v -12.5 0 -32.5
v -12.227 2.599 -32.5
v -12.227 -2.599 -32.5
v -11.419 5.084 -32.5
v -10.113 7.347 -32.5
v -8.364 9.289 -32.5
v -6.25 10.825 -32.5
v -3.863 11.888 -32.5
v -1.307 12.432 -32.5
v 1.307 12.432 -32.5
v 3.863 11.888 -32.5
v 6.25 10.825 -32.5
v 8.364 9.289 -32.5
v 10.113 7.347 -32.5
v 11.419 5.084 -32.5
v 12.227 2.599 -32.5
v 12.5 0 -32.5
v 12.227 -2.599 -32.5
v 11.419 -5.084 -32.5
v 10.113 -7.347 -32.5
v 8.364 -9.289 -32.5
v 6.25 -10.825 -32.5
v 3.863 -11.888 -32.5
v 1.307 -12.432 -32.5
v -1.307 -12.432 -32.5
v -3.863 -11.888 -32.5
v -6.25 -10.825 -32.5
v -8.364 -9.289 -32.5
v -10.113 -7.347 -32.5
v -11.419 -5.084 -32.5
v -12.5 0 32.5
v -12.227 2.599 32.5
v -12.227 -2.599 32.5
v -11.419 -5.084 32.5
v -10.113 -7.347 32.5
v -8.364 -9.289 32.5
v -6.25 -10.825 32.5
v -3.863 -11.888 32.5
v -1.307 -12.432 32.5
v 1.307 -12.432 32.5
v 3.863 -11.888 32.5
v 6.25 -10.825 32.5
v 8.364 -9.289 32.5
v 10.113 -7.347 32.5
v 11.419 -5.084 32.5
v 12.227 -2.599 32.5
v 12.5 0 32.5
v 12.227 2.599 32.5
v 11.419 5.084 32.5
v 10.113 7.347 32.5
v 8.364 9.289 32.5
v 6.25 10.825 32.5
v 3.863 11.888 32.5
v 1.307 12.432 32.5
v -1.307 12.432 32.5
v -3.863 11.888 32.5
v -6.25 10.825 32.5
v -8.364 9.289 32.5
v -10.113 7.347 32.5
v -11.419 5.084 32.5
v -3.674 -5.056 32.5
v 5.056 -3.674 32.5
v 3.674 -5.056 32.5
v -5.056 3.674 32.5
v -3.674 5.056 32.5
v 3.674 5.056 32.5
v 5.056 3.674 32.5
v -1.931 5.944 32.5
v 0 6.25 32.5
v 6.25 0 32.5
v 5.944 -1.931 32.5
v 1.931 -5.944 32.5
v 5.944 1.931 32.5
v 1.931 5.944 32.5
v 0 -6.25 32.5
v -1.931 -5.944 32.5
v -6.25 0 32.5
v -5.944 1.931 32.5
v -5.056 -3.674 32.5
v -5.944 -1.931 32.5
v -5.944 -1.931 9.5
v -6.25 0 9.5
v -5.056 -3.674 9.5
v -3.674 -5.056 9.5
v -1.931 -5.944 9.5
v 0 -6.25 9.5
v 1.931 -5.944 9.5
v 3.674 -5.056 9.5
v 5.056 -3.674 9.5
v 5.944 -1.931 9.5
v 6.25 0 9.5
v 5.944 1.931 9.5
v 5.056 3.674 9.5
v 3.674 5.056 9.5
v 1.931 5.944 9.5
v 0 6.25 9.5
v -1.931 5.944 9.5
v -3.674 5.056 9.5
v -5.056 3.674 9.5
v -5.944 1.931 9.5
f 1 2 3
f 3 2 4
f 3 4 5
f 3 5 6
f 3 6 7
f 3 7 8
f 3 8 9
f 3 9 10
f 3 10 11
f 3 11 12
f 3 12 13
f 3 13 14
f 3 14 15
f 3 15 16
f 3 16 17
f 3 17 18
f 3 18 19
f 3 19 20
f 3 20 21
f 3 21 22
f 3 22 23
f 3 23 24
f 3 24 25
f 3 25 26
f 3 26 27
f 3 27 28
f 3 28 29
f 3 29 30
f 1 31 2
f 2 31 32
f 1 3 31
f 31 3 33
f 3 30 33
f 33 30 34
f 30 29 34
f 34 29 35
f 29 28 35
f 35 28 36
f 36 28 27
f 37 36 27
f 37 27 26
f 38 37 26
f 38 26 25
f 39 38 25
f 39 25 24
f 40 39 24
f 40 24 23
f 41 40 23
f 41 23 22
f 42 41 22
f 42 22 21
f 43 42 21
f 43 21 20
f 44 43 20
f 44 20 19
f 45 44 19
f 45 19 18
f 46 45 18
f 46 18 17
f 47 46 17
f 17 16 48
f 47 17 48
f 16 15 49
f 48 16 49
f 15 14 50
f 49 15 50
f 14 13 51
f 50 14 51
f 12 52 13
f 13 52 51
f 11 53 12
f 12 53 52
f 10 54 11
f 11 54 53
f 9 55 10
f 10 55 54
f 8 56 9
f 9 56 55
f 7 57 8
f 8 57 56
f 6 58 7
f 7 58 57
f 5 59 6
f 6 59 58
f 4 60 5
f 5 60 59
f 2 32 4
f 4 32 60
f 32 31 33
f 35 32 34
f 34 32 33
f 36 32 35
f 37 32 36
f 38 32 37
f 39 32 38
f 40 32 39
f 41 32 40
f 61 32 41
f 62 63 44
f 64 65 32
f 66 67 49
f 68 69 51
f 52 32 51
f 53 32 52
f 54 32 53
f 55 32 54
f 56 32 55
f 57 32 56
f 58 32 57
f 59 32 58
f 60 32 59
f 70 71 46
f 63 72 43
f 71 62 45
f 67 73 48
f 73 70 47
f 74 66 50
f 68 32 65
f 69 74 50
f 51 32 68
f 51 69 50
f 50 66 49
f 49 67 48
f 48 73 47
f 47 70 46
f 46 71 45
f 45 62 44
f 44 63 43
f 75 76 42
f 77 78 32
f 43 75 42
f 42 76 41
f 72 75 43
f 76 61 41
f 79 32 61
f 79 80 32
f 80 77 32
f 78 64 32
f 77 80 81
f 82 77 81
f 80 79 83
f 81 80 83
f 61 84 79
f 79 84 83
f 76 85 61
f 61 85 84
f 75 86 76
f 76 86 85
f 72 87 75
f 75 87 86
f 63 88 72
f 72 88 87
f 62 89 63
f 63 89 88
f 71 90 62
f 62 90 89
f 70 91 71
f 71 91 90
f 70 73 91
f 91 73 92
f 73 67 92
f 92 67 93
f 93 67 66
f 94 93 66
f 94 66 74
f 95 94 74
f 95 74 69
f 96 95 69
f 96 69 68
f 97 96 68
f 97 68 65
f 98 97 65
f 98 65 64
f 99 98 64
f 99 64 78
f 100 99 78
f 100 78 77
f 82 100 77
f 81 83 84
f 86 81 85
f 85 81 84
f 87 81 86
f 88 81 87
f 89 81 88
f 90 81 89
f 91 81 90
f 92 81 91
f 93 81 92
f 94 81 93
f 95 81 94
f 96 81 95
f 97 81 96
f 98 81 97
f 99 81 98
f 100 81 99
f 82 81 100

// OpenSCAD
/*
 * Holder for a small push button like this one https://www.sparkfun.com/products/11992
 */

module TriggerSwitchHolder(height = 65, radius = 12.5, innerHeight = 23, innerRadius = 12.5/2)
{
    difference()
    {
        cylinder(h = height, r = radius, center = true);

        translate([0, 0, (height - innerHeight) / 2 ])
        cylinder(h = innerHeight, r = innerRadius, center = true);
    }
}

TriggerSwitchHolder();
